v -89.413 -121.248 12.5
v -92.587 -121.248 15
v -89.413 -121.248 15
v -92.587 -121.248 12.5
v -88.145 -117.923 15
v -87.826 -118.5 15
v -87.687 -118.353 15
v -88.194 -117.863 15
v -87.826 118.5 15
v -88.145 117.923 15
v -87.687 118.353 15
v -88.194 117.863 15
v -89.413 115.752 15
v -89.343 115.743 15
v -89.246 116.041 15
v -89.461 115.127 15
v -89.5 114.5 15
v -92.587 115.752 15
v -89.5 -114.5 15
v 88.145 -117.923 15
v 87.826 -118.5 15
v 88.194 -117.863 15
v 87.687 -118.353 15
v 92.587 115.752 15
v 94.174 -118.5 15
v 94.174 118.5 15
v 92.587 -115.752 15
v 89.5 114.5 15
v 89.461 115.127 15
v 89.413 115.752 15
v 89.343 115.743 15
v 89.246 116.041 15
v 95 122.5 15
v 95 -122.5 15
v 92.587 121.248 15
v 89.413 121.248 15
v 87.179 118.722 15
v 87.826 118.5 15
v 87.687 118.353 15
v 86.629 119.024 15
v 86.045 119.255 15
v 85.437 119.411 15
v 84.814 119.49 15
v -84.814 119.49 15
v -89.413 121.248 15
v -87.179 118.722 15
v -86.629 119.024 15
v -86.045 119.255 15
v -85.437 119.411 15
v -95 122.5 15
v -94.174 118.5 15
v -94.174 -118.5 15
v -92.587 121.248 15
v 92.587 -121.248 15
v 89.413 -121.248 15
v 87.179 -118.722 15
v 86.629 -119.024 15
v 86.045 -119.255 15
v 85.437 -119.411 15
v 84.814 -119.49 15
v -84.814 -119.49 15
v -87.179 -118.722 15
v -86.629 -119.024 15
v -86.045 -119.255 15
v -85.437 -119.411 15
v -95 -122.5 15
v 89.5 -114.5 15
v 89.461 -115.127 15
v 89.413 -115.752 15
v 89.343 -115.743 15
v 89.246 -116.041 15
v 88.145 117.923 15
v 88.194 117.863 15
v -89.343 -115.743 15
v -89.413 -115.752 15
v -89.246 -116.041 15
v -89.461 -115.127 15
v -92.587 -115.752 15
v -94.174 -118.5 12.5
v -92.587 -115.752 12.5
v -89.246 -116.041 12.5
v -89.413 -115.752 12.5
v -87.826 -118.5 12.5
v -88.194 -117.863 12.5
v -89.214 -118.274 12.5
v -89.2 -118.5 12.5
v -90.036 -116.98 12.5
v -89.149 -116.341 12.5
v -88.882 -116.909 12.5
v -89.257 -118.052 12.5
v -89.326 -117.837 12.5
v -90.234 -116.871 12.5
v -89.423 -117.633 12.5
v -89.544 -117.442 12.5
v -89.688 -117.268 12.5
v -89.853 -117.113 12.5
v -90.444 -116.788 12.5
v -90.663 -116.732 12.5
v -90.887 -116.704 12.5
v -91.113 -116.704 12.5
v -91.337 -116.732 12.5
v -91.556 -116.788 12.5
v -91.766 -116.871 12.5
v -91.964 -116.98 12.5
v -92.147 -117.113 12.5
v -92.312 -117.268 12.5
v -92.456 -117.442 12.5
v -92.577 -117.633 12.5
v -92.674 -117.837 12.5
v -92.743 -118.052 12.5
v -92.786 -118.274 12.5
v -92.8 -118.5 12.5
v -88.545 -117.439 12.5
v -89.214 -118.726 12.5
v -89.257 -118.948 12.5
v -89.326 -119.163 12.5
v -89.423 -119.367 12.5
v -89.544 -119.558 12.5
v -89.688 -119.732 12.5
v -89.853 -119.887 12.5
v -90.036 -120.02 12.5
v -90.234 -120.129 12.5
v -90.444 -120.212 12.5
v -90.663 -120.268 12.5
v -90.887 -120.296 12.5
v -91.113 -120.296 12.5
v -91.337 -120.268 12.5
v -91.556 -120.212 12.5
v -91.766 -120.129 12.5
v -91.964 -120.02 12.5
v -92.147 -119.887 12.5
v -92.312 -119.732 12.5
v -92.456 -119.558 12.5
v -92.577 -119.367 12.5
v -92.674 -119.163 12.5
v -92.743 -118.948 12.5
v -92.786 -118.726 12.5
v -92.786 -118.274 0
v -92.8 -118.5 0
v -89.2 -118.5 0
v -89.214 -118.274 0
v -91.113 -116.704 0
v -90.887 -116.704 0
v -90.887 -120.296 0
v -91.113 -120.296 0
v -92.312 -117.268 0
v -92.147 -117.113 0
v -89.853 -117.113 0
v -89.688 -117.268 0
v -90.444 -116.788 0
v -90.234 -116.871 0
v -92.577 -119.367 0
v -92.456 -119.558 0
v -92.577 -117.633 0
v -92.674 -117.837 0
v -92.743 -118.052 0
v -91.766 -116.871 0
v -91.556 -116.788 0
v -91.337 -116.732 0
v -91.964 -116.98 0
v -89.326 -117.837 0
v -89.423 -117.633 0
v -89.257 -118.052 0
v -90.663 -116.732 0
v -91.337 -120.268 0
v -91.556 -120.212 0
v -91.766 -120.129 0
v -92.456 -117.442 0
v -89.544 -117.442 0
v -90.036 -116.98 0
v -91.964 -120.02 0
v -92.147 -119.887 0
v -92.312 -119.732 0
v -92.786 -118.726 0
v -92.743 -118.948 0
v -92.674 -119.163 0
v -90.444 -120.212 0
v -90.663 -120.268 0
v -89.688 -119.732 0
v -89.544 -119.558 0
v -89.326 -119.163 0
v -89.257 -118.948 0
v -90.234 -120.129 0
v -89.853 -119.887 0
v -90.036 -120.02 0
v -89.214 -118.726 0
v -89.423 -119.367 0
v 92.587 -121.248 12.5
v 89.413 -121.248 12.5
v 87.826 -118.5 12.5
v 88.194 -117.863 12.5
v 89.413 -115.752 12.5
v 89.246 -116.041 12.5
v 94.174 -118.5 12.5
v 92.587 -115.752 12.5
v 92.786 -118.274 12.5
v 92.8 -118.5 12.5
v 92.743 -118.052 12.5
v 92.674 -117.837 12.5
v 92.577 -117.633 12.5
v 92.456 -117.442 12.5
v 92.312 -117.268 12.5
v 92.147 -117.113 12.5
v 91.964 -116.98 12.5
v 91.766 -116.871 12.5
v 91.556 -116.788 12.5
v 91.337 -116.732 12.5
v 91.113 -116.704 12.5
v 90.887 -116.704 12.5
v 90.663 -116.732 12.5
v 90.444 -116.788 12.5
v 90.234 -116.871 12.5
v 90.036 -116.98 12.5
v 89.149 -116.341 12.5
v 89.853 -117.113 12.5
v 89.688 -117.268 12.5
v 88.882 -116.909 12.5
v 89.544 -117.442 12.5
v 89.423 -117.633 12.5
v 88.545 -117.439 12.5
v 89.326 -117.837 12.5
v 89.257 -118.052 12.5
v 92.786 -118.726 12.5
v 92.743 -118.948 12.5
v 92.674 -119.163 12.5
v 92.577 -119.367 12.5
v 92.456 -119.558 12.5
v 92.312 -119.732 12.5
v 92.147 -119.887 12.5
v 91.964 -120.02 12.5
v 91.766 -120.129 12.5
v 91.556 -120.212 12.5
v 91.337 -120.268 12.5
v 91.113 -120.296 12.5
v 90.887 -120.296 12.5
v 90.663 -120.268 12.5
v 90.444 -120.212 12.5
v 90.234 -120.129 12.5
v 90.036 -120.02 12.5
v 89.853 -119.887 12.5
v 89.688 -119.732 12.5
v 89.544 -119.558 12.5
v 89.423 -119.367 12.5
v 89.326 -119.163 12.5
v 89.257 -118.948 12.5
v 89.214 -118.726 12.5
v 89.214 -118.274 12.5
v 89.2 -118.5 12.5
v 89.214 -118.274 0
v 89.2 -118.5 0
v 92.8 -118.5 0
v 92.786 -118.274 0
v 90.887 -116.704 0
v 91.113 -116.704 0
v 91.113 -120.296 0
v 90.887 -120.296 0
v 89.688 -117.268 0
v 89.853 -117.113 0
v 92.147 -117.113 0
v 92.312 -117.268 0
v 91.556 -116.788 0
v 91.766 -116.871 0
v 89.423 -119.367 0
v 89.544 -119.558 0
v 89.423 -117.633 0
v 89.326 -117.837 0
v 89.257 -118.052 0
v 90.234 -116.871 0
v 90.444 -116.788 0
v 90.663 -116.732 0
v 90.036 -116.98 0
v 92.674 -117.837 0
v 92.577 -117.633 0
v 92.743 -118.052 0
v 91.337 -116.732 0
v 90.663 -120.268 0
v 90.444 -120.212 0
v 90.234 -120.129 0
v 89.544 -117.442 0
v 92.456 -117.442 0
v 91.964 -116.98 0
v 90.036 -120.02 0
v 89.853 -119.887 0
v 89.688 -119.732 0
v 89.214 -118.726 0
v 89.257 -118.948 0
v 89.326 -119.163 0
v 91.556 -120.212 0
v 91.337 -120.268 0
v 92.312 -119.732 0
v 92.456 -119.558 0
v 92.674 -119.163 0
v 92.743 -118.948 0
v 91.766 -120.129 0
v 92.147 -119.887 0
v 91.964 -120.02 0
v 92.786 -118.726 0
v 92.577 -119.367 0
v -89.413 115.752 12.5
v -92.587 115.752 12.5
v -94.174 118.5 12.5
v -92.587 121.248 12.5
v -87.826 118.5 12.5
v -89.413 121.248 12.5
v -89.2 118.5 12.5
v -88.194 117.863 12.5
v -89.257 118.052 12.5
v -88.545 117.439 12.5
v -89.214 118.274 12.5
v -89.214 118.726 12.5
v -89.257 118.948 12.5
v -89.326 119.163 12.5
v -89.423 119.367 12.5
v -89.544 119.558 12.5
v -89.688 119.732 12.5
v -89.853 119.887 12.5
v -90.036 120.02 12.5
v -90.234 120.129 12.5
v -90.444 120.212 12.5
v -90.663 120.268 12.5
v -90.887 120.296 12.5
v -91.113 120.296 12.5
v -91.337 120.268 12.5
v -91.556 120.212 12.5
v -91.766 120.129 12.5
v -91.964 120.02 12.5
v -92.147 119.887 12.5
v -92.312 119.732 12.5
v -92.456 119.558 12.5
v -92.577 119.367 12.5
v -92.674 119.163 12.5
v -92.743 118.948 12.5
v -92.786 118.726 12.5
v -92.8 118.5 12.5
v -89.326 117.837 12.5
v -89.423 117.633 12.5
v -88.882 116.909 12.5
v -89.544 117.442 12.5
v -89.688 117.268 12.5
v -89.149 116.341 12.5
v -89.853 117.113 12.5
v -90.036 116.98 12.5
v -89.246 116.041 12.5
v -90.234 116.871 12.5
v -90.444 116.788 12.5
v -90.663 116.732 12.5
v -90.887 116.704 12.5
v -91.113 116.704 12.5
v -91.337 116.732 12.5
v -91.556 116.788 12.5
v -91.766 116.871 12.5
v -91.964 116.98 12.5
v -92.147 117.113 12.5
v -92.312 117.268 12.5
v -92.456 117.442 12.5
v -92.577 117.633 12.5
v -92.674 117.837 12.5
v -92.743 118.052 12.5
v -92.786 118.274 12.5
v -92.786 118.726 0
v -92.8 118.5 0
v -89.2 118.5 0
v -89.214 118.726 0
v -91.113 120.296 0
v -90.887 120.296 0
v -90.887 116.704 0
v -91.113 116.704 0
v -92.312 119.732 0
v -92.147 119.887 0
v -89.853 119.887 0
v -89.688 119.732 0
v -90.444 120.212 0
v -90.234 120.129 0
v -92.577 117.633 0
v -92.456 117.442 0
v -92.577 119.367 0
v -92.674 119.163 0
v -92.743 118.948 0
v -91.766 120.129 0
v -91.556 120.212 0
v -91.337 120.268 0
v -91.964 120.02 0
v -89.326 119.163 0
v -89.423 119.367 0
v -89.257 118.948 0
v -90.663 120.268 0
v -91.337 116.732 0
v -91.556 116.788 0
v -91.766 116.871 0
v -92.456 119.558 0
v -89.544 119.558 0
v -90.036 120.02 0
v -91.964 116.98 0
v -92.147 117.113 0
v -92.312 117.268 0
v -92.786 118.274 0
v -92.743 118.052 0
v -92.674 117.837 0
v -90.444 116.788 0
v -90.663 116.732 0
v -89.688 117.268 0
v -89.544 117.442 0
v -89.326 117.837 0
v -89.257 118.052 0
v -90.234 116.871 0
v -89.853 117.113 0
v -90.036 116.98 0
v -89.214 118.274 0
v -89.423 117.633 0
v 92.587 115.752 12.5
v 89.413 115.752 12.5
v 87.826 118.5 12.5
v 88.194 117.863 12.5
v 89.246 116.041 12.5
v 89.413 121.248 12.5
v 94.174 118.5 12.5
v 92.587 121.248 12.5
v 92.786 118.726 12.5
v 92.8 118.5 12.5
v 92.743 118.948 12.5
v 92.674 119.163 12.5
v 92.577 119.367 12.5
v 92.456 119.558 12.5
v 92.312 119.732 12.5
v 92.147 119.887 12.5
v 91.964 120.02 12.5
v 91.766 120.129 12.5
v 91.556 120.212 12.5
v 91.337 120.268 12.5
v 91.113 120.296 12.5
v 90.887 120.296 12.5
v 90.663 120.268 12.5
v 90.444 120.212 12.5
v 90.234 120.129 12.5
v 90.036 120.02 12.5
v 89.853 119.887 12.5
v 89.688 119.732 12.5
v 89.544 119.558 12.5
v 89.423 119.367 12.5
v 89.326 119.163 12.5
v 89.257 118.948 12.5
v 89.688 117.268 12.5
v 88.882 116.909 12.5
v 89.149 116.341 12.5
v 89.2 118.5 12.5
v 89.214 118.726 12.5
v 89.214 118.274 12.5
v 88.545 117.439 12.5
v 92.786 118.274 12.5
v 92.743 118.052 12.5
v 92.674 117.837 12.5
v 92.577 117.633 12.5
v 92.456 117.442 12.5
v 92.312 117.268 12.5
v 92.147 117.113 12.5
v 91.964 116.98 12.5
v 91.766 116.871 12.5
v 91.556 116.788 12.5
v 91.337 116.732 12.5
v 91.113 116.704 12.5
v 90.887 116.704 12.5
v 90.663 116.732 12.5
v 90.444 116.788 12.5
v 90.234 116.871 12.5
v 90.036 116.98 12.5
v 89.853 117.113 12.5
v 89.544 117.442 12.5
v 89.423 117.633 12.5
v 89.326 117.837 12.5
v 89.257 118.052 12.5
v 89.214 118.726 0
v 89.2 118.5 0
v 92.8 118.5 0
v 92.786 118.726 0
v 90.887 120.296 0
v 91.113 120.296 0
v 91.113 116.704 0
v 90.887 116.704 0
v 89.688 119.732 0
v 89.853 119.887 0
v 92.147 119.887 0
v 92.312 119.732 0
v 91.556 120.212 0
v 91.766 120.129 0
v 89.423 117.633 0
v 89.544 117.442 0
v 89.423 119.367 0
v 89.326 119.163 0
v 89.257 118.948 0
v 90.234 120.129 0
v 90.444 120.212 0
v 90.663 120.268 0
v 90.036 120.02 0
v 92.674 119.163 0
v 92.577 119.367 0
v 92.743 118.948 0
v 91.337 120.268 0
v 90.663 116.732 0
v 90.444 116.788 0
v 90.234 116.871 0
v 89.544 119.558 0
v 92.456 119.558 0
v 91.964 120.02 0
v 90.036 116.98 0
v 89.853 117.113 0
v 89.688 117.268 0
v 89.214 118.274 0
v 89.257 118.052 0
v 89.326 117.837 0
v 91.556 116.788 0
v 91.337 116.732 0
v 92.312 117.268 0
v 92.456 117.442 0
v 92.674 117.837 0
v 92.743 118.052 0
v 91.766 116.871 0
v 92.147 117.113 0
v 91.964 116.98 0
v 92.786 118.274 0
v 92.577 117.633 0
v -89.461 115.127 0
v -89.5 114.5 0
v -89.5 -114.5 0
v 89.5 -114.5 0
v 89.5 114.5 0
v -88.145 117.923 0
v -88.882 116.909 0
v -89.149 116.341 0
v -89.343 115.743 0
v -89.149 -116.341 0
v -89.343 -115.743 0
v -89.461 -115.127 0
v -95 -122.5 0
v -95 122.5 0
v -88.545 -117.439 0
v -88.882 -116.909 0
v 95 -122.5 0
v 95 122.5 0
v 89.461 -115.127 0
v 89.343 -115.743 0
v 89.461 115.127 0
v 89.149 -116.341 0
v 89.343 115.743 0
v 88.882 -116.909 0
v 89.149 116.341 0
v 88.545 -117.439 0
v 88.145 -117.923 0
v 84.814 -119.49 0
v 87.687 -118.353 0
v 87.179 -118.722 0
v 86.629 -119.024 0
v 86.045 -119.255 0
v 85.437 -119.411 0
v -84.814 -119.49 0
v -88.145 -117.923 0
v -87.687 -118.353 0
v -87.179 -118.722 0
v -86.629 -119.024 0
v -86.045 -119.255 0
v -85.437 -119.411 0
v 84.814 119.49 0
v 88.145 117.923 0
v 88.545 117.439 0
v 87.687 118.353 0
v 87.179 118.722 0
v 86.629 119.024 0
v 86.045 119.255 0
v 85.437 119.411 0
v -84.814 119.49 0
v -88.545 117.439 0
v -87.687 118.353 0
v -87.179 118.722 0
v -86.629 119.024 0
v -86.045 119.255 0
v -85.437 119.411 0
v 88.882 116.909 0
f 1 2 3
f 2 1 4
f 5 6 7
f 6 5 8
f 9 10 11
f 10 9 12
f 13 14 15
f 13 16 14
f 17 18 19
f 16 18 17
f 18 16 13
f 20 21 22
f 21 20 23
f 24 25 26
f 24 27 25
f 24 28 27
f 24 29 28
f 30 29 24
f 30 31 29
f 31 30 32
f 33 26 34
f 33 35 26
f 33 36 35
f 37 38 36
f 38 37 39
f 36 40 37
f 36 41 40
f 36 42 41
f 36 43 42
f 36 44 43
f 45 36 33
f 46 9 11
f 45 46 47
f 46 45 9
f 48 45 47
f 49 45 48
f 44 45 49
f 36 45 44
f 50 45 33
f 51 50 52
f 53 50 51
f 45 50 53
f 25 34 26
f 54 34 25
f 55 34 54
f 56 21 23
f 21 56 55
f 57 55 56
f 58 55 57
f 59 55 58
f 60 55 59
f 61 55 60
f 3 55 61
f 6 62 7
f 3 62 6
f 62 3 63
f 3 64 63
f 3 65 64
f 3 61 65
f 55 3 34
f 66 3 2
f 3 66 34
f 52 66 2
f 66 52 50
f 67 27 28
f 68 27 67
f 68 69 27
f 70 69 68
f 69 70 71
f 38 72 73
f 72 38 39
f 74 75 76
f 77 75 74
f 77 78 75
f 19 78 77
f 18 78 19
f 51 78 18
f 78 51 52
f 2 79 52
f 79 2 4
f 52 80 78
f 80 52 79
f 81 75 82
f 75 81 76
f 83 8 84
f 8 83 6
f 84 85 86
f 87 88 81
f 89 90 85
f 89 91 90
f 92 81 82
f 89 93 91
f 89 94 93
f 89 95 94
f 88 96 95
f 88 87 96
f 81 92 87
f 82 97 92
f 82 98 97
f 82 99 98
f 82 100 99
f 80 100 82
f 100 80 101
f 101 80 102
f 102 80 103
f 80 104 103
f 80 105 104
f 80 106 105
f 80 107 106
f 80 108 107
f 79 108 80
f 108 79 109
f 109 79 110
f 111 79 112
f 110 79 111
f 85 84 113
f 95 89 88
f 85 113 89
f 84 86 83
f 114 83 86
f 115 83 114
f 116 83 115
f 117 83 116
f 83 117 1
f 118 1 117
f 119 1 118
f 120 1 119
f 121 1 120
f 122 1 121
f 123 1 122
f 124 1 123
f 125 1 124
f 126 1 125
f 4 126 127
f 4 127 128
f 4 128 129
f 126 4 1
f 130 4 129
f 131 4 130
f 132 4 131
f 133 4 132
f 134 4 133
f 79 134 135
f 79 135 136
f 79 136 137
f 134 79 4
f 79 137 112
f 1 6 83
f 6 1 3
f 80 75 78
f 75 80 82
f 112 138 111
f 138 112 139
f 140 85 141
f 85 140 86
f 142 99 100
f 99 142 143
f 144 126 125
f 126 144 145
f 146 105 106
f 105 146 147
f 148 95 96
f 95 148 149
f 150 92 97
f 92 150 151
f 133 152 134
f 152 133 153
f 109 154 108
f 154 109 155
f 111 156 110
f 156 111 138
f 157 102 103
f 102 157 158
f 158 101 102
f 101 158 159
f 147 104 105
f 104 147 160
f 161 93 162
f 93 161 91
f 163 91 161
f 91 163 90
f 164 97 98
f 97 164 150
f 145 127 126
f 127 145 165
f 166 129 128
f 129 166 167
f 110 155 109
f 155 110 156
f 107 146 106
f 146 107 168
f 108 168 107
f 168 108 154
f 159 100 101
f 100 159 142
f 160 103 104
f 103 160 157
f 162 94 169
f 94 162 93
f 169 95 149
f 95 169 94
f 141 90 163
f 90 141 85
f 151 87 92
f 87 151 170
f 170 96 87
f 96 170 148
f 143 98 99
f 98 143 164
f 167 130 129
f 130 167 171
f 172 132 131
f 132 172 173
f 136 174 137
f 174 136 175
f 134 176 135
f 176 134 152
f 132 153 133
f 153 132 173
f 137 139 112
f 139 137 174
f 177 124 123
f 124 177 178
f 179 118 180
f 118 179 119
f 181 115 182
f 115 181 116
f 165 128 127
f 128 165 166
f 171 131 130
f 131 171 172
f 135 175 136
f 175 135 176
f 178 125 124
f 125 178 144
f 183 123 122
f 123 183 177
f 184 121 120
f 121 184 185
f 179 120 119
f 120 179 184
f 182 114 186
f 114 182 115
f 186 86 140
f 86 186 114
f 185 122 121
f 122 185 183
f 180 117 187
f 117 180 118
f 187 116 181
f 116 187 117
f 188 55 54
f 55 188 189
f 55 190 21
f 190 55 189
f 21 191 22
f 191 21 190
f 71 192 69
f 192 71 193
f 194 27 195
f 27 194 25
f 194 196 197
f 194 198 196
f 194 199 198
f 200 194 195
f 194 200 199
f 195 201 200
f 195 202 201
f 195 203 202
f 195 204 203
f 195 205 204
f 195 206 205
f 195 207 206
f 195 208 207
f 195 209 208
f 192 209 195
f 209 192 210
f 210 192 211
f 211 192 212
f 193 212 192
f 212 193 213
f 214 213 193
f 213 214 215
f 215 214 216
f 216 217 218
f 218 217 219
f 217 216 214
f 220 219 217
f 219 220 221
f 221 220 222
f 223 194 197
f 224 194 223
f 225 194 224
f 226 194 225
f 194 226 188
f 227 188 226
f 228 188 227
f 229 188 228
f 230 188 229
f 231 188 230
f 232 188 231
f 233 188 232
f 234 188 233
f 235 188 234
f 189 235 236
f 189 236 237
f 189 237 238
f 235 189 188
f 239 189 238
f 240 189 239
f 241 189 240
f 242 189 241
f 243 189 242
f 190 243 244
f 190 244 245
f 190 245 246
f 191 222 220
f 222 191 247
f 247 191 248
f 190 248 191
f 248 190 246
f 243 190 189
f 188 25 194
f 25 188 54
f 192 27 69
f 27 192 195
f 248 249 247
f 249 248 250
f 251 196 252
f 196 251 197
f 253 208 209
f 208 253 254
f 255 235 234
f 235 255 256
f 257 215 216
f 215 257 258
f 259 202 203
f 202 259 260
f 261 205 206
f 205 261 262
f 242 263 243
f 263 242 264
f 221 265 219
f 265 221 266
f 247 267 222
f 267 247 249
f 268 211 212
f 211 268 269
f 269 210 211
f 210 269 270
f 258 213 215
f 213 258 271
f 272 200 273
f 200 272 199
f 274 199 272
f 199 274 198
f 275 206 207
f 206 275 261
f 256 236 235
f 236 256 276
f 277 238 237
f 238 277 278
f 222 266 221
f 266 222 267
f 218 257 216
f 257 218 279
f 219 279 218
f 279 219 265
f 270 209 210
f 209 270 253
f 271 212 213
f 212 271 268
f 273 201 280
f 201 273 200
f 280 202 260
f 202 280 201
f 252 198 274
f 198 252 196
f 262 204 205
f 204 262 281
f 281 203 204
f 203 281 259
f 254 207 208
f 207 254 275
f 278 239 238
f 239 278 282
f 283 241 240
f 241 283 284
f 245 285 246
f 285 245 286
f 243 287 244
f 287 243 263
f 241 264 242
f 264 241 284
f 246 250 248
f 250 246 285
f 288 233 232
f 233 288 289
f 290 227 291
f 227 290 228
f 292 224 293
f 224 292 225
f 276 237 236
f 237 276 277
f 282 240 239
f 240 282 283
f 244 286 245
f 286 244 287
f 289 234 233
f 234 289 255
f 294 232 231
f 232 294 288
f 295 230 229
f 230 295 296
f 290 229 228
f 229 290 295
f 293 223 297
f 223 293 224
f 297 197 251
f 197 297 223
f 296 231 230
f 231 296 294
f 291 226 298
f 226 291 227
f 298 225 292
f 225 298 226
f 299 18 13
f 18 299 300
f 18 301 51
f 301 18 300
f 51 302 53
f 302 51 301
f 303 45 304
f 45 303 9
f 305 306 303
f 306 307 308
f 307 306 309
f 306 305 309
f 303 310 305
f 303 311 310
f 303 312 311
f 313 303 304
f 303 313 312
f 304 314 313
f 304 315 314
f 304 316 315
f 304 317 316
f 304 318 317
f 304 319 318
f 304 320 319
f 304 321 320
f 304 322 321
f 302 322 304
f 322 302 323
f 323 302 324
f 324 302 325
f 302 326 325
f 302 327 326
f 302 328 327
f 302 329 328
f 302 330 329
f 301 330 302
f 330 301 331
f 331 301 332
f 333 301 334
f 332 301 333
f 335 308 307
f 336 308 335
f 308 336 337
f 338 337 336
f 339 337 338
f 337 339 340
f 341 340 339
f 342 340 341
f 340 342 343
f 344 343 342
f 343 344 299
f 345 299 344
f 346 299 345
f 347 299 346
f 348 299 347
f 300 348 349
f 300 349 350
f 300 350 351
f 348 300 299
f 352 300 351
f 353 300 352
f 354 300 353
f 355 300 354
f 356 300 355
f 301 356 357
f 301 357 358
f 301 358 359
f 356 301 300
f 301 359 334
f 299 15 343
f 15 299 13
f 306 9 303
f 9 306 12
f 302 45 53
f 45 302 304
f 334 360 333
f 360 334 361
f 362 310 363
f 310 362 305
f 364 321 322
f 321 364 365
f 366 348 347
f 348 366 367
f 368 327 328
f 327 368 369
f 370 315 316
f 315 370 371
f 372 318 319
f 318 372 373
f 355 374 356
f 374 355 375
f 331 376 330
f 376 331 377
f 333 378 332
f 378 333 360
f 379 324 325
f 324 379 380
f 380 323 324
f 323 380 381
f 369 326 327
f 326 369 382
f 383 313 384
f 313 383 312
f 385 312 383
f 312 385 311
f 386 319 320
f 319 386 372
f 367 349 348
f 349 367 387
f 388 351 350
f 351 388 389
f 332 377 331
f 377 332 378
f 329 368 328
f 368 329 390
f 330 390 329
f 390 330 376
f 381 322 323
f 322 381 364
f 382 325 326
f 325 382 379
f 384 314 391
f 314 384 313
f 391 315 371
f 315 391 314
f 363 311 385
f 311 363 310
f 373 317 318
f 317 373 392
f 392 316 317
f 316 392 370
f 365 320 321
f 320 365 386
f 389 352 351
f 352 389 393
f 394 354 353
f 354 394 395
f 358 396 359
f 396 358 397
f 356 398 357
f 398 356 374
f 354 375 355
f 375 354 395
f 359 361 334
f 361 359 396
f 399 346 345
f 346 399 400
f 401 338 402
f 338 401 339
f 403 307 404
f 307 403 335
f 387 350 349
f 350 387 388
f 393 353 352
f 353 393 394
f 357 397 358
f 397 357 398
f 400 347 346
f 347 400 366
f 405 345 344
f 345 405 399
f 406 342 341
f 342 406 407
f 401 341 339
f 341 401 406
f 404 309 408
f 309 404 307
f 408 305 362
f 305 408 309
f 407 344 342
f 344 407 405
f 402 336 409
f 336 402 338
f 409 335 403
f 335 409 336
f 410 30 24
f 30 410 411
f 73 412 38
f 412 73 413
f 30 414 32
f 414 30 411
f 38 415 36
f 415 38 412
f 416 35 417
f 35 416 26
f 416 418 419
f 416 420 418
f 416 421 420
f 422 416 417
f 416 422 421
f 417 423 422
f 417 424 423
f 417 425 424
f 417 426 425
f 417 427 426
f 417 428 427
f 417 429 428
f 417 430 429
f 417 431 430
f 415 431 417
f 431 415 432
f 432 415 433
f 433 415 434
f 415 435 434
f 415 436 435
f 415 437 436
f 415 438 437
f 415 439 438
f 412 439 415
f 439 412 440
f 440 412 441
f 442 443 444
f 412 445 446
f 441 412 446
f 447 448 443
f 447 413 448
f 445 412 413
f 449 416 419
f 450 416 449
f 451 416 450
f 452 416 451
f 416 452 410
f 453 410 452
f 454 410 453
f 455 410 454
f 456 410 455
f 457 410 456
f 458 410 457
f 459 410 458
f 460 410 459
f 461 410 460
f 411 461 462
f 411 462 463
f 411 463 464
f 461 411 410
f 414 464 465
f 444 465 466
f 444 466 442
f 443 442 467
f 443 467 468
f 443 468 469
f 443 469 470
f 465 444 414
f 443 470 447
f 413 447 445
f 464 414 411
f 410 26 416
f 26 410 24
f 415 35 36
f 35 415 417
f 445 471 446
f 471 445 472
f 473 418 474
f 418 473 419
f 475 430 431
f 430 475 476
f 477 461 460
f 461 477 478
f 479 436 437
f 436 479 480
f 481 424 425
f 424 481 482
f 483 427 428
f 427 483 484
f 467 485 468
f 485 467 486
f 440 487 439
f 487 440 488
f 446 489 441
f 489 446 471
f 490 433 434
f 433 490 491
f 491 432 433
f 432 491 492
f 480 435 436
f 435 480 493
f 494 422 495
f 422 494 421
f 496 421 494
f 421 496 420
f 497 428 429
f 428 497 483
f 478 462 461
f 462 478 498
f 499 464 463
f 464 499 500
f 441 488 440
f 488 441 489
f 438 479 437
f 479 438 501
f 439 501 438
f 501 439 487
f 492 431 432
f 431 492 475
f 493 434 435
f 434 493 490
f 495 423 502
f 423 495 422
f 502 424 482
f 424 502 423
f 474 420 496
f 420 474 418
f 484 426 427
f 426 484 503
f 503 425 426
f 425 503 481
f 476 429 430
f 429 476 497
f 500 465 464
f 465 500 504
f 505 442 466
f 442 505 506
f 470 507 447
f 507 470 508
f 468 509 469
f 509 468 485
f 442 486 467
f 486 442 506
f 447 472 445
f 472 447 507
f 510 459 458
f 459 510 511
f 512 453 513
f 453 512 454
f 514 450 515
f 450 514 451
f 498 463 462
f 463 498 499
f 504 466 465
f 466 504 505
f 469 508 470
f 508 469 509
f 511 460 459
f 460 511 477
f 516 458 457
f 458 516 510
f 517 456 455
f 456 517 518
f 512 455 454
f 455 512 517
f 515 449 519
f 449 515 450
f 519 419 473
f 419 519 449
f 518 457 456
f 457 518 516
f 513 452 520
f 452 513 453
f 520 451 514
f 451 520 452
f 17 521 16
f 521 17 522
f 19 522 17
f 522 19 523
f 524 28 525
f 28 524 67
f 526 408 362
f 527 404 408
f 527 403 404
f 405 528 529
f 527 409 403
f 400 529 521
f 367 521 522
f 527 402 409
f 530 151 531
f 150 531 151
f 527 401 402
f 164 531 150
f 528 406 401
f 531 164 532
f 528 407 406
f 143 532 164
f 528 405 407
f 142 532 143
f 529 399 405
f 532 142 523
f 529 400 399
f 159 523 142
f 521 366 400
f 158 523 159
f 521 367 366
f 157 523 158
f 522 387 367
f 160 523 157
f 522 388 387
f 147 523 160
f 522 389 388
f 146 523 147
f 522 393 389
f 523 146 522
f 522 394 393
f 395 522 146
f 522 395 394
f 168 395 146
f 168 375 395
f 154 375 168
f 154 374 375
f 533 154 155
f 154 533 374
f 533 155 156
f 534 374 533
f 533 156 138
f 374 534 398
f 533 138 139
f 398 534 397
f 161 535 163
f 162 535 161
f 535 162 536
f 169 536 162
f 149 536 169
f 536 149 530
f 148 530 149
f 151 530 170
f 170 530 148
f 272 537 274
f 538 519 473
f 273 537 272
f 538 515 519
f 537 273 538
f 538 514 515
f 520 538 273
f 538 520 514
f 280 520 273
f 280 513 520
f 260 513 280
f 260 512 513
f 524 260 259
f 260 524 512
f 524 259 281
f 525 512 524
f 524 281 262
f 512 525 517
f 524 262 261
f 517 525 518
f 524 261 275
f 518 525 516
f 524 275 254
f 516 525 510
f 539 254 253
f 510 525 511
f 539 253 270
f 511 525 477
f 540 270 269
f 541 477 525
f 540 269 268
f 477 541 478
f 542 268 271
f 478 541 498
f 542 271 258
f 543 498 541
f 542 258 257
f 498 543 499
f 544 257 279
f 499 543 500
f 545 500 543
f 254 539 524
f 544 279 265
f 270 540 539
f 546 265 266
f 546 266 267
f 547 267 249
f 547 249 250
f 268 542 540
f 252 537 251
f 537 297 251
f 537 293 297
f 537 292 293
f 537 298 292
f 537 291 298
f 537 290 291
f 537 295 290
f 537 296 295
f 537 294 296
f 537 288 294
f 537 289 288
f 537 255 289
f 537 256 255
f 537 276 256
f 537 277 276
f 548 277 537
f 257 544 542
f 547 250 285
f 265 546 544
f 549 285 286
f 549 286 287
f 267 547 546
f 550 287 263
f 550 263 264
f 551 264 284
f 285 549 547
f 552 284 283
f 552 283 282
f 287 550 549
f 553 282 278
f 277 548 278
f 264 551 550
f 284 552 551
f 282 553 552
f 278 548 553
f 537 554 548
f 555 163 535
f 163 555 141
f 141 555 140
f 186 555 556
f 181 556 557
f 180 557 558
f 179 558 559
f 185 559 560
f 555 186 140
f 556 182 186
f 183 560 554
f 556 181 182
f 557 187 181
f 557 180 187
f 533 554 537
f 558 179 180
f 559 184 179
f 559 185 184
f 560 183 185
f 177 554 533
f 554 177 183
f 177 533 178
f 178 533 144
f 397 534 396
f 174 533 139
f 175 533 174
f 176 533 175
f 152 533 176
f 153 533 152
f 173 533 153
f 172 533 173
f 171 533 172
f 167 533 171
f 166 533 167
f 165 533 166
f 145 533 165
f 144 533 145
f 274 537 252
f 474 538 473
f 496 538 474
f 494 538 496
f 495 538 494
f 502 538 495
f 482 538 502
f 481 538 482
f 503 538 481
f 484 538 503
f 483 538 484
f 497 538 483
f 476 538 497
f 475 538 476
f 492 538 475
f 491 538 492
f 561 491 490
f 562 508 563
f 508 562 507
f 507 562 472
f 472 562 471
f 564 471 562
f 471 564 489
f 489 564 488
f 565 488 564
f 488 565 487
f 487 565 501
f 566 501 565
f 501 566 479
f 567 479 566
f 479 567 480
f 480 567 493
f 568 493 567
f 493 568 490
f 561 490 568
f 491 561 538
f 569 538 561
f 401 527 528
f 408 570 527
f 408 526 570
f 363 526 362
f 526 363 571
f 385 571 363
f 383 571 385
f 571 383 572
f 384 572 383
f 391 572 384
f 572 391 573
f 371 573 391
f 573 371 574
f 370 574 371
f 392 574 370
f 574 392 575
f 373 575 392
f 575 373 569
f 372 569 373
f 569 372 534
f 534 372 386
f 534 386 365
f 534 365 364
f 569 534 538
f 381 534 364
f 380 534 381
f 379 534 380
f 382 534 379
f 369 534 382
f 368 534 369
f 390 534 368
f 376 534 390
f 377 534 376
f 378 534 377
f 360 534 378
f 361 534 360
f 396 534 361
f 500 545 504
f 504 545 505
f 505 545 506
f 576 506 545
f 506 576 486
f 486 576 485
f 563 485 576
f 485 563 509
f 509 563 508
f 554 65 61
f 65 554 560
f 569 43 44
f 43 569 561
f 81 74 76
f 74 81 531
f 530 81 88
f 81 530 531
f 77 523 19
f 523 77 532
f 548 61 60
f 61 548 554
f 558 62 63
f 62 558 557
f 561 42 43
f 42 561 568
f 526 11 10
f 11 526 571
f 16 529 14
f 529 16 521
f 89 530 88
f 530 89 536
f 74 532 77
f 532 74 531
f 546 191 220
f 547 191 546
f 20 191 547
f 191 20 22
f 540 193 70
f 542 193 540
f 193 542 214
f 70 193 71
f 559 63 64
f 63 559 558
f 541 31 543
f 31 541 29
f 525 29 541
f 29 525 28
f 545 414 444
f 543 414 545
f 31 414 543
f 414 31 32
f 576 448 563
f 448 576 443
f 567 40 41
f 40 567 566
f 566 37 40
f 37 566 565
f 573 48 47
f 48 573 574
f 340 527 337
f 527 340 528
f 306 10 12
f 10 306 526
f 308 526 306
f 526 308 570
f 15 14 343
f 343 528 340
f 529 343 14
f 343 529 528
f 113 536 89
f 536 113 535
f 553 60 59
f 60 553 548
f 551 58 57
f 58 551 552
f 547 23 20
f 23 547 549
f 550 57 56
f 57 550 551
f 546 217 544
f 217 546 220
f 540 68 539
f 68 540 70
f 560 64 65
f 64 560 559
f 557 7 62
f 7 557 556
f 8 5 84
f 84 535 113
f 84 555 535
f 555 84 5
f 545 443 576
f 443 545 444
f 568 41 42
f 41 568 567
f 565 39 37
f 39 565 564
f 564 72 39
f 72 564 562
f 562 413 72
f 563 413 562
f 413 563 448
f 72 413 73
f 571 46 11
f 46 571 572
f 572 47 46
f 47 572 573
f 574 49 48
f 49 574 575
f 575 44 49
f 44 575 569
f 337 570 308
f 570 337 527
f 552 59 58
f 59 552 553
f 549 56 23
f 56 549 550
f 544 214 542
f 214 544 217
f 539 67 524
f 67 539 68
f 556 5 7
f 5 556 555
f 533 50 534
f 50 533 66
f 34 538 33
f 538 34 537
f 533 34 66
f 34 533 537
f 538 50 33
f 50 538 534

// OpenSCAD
$fn = 50;


difference() {
	union() {
		translate(v = [-95.0000000000, -122.5000000000, 0]) {
			cube(size = [190, 245, 15]);
		}
	}
	union() {
		translate(v = [-91.0000000000, -118.5000000000, -3]) {
			rotate(a = [0, 180, 0]) {
				difference() {
					union() {
						translate(v = [0, 0, -18.0000000000]) {
							rotate(a = [0, 0, 0]) {
								difference() {
									union() {
										#linear_extrude(height = 2.5000000000) {
											polygon(points = [[3.1735000000, 0.0000000000], [1.5867500000, 2.7483316189], [-1.5867500000, 2.7483316189], [-3.1735000000, 0.0000000000], [-1.5867500000, -2.7483316189], [1.5867500000, -2.7483316189]]);
										}
									}
									union();
								}
							}
						}
						translate(v = [0, 0, -18.0000000000]) {
							rotate(a = [0, 0, 0]) {
								difference() {
									union() {
										#linear_extrude(height = 2.5000000000) {
											polygon(points = [[3.1735000000, 0.0000000000], [1.5867500000, 2.7483316189], [-1.5867500000, 2.7483316189], [-3.1735000000, 0.0000000000], [-1.5867500000, -2.7483316189], [1.5867500000, -2.7483316189]]);
										}
									}
									union();
								}
							}
						}
						translate(v = [0, 0, -18.0000000000]) {
							rotate(a = [0, 0, 0]) {
								difference() {
									union() {
										#linear_extrude(height = 2.5000000000) {
											polygon(points = [[3.1735000000, 0.0000000000], [1.5867500000, 2.7483316189], [-1.5867500000, 2.7483316189], [-3.1735000000, 0.0000000000], [-1.5867500000, -2.7483316189], [1.5867500000, -2.7483316189]]);
										}
									}
									union();
								}
							}
						}
						#translate(v = [0, 0, -18.0000000000]) {
							cylinder(h = 18, r = 1.5000000000);
						}
						#translate(v = [0, 0, -18.0000000000]) {
							cylinder(h = 18, r = 1.8000000000);
						}
						#translate(v = [0, 0, -1.7000000000]) {
							cylinder(h = 1.7000000000, r1 = 1.5000000000, r2 = 2.9000000000);
						}
						#translate(v = [0, 0, -18.0000000000]) {
							cylinder(h = 18, r = 1.5000000000);
						}
					}
					union();
				}
			}
		}
		translate(v = [91.0000000000, -118.5000000000, -3]) {
			rotate(a = [0, 180, 0]) {
				difference() {
					union() {
						translate(v = [0, 0, -18.0000000000]) {
							rotate(a = [0, 0, 0]) {
								difference() {
									union() {
										#linear_extrude(height = 2.5000000000) {
											polygon(points = [[3.1735000000, 0.0000000000], [1.5867500000, 2.7483316189], [-1.5867500000, 2.7483316189], [-3.1735000000, 0.0000000000], [-1.5867500000, -2.7483316189], [1.5867500000, -2.7483316189]]);
										}
									}
									union();
								}
							}
						}
						translate(v = [0, 0, -18.0000000000]) {
							rotate(a = [0, 0, 0]) {
								difference() {
									union() {
										#linear_extrude(height = 2.5000000000) {
											polygon(points = [[3.1735000000, 0.0000000000], [1.5867500000, 2.7483316189], [-1.5867500000, 2.7483316189], [-3.1735000000, 0.0000000000], [-1.5867500000, -2.7483316189], [1.5867500000, -2.7483316189]]);
										}
									}
									union();
								}
							}
						}
						translate(v = [0, 0, -18.0000000000]) {
							rotate(a = [0, 0, 0]) {
								difference() {
									union() {
										#linear_extrude(height = 2.5000000000) {
											polygon(points = [[3.1735000000, 0.0000000000], [1.5867500000, 2.7483316189], [-1.5867500000, 2.7483316189], [-3.1735000000, 0.0000000000], [-1.5867500000, -2.7483316189], [1.5867500000, -2.7483316189]]);
										}
									}
									union();
								}
							}
						}
						#translate(v = [0, 0, -18.0000000000]) {
							cylinder(h = 18, r = 1.5000000000);
						}
						#translate(v = [0, 0, -18.0000000000]) {
							cylinder(h = 18, r = 1.8000000000);
						}
						#translate(v = [0, 0, -1.7000000000]) {
							cylinder(h = 1.7000000000, r1 = 1.5000000000, r2 = 2.9000000000);
						}
						#translate(v = [0, 0, -18.0000000000]) {
							cylinder(h = 18, r = 1.5000000000);
						}
					}
					union();
				}
			}
		}
		translate(v = [-91.0000000000, 118.5000000000, -3]) {
			rotate(a = [0, 180, 0]) {
				difference() {
					union() {
						translate(v = [0, 0, -18.0000000000]) {
							rotate(a = [0, 0, 0]) {
								difference() {
									union() {
										#linear_extrude(height = 2.5000000000) {
											polygon(points = [[3.1735000000, 0.0000000000], [1.5867500000, 2.7483316189], [-1.5867500000, 2.7483316189], [-3.1735000000, 0.0000000000], [-1.5867500000, -2.7483316189], [1.5867500000, -2.7483316189]]);
										}
									}
									union();
								}
							}
						}
						translate(v = [0, 0, -18.0000000000]) {
							rotate(a = [0, 0, 0]) {
								difference() {
									union() {
										#linear_extrude(height = 2.5000000000) {
											polygon(points = [[3.1735000000, 0.0000000000], [1.5867500000, 2.7483316189], [-1.5867500000, 2.7483316189], [-3.1735000000, 0.0000000000], [-1.5867500000, -2.7483316189], [1.5867500000, -2.7483316189]]);
										}
									}
									union();
								}
							}
						}
						translate(v = [0, 0, -18.0000000000]) {
							rotate(a = [0, 0, 0]) {
								difference() {
									union() {
										#linear_extrude(height = 2.5000000000) {
											polygon(points = [[3.1735000000, 0.0000000000], [1.5867500000, 2.7483316189], [-1.5867500000, 2.7483316189], [-3.1735000000, 0.0000000000], [-1.5867500000, -2.7483316189], [1.5867500000, -2.7483316189]]);
										}
									}
									union();
								}
							}
						}
						#translate(v = [0, 0, -18.0000000000]) {
							cylinder(h = 18, r = 1.5000000000);
						}
						#translate(v = [0, 0, -18.0000000000]) {
							cylinder(h = 18, r = 1.8000000000);
						}
						#translate(v = [0, 0, -1.7000000000]) {
							cylinder(h = 1.7000000000, r1 = 1.5000000000, r2 = 2.9000000000);
						}
						#translate(v = [0, 0, -18.0000000000]) {
							cylinder(h = 18, r = 1.5000000000);
						}
					}
					union();
				}
			}
		}
		translate(v = [91.0000000000, 118.5000000000, -3]) {
			rotate(a = [0, 180, 0]) {
				difference() {
					union() {
						translate(v = [0, 0, -18.0000000000]) {
							rotate(a = [0, 0, 0]) {
								difference() {
									union() {
										#linear_extrude(height = 2.5000000000) {
											polygon(points = [[3.1735000000, 0.0000000000], [1.5867500000, 2.7483316189], [-1.5867500000, 2.7483316189], [-3.1735000000, 0.0000000000], [-1.5867500000, -2.7483316189], [1.5867500000, -2.7483316189]]);
										}
									}
									union();
								}
							}
						}
						translate(v = [0, 0, -18.0000000000]) {
							rotate(a = [0, 0, 0]) {
								difference() {
									union() {
										#linear_extrude(height = 2.5000000000) {
											polygon(points = [[3.1735000000, 0.0000000000], [1.5867500000, 2.7483316189], [-1.5867500000, 2.7483316189], [-3.1735000000, 0.0000000000], [-1.5867500000, -2.7483316189], [1.5867500000, -2.7483316189]]);
										}
									}
									union();
								}
							}
						}
						translate(v = [0, 0, -18.0000000000]) {
							rotate(a = [0, 0, 0]) {
								difference() {
									union() {
										#linear_extrude(height = 2.5000000000) {
											polygon(points = [[3.1735000000, 0.0000000000], [1.5867500000, 2.7483316189], [-1.5867500000, 2.7483316189], [-3.1735000000, 0.0000000000], [-1.5867500000, -2.7483316189], [1.5867500000, -2.7483316189]]);
										}
									}
									union();
								}
							}
						}
						#translate(v = [0, 0, -18.0000000000]) {
							cylinder(h = 18, r = 1.5000000000);
						}
						#translate(v = [0, 0, -18.0000000000]) {
							cylinder(h = 18, r = 1.8000000000);
						}
						#translate(v = [0, 0, -1.7000000000]) {
							cylinder(h = 1.7000000000, r1 = 1.5000000000, r2 = 2.9000000000);
						}
						#translate(v = [0, 0, -18.0000000000]) {
							cylinder(h = 18, r = 1.5000000000);
						}
					}
					union();
				}
			}
		}
		#hull() {
			translate(v = [-84.5000000000, 114.5000000000, 0]) {
				cylinder(h = 15, r = 5);
			}
			translate(v = [84.5000000000, 114.5000000000, 0]) {
				cylinder(h = 15, r = 5);
			}
			translate(v = [-84.5000000000, -114.5000000000, 0]) {
				cylinder(h = 15, r = 5);
			}
			translate(v = [84.5000000000, -114.5000000000, 0]) {
				cylinder(h = 15, r = 5);
			}
		}
	}
}
